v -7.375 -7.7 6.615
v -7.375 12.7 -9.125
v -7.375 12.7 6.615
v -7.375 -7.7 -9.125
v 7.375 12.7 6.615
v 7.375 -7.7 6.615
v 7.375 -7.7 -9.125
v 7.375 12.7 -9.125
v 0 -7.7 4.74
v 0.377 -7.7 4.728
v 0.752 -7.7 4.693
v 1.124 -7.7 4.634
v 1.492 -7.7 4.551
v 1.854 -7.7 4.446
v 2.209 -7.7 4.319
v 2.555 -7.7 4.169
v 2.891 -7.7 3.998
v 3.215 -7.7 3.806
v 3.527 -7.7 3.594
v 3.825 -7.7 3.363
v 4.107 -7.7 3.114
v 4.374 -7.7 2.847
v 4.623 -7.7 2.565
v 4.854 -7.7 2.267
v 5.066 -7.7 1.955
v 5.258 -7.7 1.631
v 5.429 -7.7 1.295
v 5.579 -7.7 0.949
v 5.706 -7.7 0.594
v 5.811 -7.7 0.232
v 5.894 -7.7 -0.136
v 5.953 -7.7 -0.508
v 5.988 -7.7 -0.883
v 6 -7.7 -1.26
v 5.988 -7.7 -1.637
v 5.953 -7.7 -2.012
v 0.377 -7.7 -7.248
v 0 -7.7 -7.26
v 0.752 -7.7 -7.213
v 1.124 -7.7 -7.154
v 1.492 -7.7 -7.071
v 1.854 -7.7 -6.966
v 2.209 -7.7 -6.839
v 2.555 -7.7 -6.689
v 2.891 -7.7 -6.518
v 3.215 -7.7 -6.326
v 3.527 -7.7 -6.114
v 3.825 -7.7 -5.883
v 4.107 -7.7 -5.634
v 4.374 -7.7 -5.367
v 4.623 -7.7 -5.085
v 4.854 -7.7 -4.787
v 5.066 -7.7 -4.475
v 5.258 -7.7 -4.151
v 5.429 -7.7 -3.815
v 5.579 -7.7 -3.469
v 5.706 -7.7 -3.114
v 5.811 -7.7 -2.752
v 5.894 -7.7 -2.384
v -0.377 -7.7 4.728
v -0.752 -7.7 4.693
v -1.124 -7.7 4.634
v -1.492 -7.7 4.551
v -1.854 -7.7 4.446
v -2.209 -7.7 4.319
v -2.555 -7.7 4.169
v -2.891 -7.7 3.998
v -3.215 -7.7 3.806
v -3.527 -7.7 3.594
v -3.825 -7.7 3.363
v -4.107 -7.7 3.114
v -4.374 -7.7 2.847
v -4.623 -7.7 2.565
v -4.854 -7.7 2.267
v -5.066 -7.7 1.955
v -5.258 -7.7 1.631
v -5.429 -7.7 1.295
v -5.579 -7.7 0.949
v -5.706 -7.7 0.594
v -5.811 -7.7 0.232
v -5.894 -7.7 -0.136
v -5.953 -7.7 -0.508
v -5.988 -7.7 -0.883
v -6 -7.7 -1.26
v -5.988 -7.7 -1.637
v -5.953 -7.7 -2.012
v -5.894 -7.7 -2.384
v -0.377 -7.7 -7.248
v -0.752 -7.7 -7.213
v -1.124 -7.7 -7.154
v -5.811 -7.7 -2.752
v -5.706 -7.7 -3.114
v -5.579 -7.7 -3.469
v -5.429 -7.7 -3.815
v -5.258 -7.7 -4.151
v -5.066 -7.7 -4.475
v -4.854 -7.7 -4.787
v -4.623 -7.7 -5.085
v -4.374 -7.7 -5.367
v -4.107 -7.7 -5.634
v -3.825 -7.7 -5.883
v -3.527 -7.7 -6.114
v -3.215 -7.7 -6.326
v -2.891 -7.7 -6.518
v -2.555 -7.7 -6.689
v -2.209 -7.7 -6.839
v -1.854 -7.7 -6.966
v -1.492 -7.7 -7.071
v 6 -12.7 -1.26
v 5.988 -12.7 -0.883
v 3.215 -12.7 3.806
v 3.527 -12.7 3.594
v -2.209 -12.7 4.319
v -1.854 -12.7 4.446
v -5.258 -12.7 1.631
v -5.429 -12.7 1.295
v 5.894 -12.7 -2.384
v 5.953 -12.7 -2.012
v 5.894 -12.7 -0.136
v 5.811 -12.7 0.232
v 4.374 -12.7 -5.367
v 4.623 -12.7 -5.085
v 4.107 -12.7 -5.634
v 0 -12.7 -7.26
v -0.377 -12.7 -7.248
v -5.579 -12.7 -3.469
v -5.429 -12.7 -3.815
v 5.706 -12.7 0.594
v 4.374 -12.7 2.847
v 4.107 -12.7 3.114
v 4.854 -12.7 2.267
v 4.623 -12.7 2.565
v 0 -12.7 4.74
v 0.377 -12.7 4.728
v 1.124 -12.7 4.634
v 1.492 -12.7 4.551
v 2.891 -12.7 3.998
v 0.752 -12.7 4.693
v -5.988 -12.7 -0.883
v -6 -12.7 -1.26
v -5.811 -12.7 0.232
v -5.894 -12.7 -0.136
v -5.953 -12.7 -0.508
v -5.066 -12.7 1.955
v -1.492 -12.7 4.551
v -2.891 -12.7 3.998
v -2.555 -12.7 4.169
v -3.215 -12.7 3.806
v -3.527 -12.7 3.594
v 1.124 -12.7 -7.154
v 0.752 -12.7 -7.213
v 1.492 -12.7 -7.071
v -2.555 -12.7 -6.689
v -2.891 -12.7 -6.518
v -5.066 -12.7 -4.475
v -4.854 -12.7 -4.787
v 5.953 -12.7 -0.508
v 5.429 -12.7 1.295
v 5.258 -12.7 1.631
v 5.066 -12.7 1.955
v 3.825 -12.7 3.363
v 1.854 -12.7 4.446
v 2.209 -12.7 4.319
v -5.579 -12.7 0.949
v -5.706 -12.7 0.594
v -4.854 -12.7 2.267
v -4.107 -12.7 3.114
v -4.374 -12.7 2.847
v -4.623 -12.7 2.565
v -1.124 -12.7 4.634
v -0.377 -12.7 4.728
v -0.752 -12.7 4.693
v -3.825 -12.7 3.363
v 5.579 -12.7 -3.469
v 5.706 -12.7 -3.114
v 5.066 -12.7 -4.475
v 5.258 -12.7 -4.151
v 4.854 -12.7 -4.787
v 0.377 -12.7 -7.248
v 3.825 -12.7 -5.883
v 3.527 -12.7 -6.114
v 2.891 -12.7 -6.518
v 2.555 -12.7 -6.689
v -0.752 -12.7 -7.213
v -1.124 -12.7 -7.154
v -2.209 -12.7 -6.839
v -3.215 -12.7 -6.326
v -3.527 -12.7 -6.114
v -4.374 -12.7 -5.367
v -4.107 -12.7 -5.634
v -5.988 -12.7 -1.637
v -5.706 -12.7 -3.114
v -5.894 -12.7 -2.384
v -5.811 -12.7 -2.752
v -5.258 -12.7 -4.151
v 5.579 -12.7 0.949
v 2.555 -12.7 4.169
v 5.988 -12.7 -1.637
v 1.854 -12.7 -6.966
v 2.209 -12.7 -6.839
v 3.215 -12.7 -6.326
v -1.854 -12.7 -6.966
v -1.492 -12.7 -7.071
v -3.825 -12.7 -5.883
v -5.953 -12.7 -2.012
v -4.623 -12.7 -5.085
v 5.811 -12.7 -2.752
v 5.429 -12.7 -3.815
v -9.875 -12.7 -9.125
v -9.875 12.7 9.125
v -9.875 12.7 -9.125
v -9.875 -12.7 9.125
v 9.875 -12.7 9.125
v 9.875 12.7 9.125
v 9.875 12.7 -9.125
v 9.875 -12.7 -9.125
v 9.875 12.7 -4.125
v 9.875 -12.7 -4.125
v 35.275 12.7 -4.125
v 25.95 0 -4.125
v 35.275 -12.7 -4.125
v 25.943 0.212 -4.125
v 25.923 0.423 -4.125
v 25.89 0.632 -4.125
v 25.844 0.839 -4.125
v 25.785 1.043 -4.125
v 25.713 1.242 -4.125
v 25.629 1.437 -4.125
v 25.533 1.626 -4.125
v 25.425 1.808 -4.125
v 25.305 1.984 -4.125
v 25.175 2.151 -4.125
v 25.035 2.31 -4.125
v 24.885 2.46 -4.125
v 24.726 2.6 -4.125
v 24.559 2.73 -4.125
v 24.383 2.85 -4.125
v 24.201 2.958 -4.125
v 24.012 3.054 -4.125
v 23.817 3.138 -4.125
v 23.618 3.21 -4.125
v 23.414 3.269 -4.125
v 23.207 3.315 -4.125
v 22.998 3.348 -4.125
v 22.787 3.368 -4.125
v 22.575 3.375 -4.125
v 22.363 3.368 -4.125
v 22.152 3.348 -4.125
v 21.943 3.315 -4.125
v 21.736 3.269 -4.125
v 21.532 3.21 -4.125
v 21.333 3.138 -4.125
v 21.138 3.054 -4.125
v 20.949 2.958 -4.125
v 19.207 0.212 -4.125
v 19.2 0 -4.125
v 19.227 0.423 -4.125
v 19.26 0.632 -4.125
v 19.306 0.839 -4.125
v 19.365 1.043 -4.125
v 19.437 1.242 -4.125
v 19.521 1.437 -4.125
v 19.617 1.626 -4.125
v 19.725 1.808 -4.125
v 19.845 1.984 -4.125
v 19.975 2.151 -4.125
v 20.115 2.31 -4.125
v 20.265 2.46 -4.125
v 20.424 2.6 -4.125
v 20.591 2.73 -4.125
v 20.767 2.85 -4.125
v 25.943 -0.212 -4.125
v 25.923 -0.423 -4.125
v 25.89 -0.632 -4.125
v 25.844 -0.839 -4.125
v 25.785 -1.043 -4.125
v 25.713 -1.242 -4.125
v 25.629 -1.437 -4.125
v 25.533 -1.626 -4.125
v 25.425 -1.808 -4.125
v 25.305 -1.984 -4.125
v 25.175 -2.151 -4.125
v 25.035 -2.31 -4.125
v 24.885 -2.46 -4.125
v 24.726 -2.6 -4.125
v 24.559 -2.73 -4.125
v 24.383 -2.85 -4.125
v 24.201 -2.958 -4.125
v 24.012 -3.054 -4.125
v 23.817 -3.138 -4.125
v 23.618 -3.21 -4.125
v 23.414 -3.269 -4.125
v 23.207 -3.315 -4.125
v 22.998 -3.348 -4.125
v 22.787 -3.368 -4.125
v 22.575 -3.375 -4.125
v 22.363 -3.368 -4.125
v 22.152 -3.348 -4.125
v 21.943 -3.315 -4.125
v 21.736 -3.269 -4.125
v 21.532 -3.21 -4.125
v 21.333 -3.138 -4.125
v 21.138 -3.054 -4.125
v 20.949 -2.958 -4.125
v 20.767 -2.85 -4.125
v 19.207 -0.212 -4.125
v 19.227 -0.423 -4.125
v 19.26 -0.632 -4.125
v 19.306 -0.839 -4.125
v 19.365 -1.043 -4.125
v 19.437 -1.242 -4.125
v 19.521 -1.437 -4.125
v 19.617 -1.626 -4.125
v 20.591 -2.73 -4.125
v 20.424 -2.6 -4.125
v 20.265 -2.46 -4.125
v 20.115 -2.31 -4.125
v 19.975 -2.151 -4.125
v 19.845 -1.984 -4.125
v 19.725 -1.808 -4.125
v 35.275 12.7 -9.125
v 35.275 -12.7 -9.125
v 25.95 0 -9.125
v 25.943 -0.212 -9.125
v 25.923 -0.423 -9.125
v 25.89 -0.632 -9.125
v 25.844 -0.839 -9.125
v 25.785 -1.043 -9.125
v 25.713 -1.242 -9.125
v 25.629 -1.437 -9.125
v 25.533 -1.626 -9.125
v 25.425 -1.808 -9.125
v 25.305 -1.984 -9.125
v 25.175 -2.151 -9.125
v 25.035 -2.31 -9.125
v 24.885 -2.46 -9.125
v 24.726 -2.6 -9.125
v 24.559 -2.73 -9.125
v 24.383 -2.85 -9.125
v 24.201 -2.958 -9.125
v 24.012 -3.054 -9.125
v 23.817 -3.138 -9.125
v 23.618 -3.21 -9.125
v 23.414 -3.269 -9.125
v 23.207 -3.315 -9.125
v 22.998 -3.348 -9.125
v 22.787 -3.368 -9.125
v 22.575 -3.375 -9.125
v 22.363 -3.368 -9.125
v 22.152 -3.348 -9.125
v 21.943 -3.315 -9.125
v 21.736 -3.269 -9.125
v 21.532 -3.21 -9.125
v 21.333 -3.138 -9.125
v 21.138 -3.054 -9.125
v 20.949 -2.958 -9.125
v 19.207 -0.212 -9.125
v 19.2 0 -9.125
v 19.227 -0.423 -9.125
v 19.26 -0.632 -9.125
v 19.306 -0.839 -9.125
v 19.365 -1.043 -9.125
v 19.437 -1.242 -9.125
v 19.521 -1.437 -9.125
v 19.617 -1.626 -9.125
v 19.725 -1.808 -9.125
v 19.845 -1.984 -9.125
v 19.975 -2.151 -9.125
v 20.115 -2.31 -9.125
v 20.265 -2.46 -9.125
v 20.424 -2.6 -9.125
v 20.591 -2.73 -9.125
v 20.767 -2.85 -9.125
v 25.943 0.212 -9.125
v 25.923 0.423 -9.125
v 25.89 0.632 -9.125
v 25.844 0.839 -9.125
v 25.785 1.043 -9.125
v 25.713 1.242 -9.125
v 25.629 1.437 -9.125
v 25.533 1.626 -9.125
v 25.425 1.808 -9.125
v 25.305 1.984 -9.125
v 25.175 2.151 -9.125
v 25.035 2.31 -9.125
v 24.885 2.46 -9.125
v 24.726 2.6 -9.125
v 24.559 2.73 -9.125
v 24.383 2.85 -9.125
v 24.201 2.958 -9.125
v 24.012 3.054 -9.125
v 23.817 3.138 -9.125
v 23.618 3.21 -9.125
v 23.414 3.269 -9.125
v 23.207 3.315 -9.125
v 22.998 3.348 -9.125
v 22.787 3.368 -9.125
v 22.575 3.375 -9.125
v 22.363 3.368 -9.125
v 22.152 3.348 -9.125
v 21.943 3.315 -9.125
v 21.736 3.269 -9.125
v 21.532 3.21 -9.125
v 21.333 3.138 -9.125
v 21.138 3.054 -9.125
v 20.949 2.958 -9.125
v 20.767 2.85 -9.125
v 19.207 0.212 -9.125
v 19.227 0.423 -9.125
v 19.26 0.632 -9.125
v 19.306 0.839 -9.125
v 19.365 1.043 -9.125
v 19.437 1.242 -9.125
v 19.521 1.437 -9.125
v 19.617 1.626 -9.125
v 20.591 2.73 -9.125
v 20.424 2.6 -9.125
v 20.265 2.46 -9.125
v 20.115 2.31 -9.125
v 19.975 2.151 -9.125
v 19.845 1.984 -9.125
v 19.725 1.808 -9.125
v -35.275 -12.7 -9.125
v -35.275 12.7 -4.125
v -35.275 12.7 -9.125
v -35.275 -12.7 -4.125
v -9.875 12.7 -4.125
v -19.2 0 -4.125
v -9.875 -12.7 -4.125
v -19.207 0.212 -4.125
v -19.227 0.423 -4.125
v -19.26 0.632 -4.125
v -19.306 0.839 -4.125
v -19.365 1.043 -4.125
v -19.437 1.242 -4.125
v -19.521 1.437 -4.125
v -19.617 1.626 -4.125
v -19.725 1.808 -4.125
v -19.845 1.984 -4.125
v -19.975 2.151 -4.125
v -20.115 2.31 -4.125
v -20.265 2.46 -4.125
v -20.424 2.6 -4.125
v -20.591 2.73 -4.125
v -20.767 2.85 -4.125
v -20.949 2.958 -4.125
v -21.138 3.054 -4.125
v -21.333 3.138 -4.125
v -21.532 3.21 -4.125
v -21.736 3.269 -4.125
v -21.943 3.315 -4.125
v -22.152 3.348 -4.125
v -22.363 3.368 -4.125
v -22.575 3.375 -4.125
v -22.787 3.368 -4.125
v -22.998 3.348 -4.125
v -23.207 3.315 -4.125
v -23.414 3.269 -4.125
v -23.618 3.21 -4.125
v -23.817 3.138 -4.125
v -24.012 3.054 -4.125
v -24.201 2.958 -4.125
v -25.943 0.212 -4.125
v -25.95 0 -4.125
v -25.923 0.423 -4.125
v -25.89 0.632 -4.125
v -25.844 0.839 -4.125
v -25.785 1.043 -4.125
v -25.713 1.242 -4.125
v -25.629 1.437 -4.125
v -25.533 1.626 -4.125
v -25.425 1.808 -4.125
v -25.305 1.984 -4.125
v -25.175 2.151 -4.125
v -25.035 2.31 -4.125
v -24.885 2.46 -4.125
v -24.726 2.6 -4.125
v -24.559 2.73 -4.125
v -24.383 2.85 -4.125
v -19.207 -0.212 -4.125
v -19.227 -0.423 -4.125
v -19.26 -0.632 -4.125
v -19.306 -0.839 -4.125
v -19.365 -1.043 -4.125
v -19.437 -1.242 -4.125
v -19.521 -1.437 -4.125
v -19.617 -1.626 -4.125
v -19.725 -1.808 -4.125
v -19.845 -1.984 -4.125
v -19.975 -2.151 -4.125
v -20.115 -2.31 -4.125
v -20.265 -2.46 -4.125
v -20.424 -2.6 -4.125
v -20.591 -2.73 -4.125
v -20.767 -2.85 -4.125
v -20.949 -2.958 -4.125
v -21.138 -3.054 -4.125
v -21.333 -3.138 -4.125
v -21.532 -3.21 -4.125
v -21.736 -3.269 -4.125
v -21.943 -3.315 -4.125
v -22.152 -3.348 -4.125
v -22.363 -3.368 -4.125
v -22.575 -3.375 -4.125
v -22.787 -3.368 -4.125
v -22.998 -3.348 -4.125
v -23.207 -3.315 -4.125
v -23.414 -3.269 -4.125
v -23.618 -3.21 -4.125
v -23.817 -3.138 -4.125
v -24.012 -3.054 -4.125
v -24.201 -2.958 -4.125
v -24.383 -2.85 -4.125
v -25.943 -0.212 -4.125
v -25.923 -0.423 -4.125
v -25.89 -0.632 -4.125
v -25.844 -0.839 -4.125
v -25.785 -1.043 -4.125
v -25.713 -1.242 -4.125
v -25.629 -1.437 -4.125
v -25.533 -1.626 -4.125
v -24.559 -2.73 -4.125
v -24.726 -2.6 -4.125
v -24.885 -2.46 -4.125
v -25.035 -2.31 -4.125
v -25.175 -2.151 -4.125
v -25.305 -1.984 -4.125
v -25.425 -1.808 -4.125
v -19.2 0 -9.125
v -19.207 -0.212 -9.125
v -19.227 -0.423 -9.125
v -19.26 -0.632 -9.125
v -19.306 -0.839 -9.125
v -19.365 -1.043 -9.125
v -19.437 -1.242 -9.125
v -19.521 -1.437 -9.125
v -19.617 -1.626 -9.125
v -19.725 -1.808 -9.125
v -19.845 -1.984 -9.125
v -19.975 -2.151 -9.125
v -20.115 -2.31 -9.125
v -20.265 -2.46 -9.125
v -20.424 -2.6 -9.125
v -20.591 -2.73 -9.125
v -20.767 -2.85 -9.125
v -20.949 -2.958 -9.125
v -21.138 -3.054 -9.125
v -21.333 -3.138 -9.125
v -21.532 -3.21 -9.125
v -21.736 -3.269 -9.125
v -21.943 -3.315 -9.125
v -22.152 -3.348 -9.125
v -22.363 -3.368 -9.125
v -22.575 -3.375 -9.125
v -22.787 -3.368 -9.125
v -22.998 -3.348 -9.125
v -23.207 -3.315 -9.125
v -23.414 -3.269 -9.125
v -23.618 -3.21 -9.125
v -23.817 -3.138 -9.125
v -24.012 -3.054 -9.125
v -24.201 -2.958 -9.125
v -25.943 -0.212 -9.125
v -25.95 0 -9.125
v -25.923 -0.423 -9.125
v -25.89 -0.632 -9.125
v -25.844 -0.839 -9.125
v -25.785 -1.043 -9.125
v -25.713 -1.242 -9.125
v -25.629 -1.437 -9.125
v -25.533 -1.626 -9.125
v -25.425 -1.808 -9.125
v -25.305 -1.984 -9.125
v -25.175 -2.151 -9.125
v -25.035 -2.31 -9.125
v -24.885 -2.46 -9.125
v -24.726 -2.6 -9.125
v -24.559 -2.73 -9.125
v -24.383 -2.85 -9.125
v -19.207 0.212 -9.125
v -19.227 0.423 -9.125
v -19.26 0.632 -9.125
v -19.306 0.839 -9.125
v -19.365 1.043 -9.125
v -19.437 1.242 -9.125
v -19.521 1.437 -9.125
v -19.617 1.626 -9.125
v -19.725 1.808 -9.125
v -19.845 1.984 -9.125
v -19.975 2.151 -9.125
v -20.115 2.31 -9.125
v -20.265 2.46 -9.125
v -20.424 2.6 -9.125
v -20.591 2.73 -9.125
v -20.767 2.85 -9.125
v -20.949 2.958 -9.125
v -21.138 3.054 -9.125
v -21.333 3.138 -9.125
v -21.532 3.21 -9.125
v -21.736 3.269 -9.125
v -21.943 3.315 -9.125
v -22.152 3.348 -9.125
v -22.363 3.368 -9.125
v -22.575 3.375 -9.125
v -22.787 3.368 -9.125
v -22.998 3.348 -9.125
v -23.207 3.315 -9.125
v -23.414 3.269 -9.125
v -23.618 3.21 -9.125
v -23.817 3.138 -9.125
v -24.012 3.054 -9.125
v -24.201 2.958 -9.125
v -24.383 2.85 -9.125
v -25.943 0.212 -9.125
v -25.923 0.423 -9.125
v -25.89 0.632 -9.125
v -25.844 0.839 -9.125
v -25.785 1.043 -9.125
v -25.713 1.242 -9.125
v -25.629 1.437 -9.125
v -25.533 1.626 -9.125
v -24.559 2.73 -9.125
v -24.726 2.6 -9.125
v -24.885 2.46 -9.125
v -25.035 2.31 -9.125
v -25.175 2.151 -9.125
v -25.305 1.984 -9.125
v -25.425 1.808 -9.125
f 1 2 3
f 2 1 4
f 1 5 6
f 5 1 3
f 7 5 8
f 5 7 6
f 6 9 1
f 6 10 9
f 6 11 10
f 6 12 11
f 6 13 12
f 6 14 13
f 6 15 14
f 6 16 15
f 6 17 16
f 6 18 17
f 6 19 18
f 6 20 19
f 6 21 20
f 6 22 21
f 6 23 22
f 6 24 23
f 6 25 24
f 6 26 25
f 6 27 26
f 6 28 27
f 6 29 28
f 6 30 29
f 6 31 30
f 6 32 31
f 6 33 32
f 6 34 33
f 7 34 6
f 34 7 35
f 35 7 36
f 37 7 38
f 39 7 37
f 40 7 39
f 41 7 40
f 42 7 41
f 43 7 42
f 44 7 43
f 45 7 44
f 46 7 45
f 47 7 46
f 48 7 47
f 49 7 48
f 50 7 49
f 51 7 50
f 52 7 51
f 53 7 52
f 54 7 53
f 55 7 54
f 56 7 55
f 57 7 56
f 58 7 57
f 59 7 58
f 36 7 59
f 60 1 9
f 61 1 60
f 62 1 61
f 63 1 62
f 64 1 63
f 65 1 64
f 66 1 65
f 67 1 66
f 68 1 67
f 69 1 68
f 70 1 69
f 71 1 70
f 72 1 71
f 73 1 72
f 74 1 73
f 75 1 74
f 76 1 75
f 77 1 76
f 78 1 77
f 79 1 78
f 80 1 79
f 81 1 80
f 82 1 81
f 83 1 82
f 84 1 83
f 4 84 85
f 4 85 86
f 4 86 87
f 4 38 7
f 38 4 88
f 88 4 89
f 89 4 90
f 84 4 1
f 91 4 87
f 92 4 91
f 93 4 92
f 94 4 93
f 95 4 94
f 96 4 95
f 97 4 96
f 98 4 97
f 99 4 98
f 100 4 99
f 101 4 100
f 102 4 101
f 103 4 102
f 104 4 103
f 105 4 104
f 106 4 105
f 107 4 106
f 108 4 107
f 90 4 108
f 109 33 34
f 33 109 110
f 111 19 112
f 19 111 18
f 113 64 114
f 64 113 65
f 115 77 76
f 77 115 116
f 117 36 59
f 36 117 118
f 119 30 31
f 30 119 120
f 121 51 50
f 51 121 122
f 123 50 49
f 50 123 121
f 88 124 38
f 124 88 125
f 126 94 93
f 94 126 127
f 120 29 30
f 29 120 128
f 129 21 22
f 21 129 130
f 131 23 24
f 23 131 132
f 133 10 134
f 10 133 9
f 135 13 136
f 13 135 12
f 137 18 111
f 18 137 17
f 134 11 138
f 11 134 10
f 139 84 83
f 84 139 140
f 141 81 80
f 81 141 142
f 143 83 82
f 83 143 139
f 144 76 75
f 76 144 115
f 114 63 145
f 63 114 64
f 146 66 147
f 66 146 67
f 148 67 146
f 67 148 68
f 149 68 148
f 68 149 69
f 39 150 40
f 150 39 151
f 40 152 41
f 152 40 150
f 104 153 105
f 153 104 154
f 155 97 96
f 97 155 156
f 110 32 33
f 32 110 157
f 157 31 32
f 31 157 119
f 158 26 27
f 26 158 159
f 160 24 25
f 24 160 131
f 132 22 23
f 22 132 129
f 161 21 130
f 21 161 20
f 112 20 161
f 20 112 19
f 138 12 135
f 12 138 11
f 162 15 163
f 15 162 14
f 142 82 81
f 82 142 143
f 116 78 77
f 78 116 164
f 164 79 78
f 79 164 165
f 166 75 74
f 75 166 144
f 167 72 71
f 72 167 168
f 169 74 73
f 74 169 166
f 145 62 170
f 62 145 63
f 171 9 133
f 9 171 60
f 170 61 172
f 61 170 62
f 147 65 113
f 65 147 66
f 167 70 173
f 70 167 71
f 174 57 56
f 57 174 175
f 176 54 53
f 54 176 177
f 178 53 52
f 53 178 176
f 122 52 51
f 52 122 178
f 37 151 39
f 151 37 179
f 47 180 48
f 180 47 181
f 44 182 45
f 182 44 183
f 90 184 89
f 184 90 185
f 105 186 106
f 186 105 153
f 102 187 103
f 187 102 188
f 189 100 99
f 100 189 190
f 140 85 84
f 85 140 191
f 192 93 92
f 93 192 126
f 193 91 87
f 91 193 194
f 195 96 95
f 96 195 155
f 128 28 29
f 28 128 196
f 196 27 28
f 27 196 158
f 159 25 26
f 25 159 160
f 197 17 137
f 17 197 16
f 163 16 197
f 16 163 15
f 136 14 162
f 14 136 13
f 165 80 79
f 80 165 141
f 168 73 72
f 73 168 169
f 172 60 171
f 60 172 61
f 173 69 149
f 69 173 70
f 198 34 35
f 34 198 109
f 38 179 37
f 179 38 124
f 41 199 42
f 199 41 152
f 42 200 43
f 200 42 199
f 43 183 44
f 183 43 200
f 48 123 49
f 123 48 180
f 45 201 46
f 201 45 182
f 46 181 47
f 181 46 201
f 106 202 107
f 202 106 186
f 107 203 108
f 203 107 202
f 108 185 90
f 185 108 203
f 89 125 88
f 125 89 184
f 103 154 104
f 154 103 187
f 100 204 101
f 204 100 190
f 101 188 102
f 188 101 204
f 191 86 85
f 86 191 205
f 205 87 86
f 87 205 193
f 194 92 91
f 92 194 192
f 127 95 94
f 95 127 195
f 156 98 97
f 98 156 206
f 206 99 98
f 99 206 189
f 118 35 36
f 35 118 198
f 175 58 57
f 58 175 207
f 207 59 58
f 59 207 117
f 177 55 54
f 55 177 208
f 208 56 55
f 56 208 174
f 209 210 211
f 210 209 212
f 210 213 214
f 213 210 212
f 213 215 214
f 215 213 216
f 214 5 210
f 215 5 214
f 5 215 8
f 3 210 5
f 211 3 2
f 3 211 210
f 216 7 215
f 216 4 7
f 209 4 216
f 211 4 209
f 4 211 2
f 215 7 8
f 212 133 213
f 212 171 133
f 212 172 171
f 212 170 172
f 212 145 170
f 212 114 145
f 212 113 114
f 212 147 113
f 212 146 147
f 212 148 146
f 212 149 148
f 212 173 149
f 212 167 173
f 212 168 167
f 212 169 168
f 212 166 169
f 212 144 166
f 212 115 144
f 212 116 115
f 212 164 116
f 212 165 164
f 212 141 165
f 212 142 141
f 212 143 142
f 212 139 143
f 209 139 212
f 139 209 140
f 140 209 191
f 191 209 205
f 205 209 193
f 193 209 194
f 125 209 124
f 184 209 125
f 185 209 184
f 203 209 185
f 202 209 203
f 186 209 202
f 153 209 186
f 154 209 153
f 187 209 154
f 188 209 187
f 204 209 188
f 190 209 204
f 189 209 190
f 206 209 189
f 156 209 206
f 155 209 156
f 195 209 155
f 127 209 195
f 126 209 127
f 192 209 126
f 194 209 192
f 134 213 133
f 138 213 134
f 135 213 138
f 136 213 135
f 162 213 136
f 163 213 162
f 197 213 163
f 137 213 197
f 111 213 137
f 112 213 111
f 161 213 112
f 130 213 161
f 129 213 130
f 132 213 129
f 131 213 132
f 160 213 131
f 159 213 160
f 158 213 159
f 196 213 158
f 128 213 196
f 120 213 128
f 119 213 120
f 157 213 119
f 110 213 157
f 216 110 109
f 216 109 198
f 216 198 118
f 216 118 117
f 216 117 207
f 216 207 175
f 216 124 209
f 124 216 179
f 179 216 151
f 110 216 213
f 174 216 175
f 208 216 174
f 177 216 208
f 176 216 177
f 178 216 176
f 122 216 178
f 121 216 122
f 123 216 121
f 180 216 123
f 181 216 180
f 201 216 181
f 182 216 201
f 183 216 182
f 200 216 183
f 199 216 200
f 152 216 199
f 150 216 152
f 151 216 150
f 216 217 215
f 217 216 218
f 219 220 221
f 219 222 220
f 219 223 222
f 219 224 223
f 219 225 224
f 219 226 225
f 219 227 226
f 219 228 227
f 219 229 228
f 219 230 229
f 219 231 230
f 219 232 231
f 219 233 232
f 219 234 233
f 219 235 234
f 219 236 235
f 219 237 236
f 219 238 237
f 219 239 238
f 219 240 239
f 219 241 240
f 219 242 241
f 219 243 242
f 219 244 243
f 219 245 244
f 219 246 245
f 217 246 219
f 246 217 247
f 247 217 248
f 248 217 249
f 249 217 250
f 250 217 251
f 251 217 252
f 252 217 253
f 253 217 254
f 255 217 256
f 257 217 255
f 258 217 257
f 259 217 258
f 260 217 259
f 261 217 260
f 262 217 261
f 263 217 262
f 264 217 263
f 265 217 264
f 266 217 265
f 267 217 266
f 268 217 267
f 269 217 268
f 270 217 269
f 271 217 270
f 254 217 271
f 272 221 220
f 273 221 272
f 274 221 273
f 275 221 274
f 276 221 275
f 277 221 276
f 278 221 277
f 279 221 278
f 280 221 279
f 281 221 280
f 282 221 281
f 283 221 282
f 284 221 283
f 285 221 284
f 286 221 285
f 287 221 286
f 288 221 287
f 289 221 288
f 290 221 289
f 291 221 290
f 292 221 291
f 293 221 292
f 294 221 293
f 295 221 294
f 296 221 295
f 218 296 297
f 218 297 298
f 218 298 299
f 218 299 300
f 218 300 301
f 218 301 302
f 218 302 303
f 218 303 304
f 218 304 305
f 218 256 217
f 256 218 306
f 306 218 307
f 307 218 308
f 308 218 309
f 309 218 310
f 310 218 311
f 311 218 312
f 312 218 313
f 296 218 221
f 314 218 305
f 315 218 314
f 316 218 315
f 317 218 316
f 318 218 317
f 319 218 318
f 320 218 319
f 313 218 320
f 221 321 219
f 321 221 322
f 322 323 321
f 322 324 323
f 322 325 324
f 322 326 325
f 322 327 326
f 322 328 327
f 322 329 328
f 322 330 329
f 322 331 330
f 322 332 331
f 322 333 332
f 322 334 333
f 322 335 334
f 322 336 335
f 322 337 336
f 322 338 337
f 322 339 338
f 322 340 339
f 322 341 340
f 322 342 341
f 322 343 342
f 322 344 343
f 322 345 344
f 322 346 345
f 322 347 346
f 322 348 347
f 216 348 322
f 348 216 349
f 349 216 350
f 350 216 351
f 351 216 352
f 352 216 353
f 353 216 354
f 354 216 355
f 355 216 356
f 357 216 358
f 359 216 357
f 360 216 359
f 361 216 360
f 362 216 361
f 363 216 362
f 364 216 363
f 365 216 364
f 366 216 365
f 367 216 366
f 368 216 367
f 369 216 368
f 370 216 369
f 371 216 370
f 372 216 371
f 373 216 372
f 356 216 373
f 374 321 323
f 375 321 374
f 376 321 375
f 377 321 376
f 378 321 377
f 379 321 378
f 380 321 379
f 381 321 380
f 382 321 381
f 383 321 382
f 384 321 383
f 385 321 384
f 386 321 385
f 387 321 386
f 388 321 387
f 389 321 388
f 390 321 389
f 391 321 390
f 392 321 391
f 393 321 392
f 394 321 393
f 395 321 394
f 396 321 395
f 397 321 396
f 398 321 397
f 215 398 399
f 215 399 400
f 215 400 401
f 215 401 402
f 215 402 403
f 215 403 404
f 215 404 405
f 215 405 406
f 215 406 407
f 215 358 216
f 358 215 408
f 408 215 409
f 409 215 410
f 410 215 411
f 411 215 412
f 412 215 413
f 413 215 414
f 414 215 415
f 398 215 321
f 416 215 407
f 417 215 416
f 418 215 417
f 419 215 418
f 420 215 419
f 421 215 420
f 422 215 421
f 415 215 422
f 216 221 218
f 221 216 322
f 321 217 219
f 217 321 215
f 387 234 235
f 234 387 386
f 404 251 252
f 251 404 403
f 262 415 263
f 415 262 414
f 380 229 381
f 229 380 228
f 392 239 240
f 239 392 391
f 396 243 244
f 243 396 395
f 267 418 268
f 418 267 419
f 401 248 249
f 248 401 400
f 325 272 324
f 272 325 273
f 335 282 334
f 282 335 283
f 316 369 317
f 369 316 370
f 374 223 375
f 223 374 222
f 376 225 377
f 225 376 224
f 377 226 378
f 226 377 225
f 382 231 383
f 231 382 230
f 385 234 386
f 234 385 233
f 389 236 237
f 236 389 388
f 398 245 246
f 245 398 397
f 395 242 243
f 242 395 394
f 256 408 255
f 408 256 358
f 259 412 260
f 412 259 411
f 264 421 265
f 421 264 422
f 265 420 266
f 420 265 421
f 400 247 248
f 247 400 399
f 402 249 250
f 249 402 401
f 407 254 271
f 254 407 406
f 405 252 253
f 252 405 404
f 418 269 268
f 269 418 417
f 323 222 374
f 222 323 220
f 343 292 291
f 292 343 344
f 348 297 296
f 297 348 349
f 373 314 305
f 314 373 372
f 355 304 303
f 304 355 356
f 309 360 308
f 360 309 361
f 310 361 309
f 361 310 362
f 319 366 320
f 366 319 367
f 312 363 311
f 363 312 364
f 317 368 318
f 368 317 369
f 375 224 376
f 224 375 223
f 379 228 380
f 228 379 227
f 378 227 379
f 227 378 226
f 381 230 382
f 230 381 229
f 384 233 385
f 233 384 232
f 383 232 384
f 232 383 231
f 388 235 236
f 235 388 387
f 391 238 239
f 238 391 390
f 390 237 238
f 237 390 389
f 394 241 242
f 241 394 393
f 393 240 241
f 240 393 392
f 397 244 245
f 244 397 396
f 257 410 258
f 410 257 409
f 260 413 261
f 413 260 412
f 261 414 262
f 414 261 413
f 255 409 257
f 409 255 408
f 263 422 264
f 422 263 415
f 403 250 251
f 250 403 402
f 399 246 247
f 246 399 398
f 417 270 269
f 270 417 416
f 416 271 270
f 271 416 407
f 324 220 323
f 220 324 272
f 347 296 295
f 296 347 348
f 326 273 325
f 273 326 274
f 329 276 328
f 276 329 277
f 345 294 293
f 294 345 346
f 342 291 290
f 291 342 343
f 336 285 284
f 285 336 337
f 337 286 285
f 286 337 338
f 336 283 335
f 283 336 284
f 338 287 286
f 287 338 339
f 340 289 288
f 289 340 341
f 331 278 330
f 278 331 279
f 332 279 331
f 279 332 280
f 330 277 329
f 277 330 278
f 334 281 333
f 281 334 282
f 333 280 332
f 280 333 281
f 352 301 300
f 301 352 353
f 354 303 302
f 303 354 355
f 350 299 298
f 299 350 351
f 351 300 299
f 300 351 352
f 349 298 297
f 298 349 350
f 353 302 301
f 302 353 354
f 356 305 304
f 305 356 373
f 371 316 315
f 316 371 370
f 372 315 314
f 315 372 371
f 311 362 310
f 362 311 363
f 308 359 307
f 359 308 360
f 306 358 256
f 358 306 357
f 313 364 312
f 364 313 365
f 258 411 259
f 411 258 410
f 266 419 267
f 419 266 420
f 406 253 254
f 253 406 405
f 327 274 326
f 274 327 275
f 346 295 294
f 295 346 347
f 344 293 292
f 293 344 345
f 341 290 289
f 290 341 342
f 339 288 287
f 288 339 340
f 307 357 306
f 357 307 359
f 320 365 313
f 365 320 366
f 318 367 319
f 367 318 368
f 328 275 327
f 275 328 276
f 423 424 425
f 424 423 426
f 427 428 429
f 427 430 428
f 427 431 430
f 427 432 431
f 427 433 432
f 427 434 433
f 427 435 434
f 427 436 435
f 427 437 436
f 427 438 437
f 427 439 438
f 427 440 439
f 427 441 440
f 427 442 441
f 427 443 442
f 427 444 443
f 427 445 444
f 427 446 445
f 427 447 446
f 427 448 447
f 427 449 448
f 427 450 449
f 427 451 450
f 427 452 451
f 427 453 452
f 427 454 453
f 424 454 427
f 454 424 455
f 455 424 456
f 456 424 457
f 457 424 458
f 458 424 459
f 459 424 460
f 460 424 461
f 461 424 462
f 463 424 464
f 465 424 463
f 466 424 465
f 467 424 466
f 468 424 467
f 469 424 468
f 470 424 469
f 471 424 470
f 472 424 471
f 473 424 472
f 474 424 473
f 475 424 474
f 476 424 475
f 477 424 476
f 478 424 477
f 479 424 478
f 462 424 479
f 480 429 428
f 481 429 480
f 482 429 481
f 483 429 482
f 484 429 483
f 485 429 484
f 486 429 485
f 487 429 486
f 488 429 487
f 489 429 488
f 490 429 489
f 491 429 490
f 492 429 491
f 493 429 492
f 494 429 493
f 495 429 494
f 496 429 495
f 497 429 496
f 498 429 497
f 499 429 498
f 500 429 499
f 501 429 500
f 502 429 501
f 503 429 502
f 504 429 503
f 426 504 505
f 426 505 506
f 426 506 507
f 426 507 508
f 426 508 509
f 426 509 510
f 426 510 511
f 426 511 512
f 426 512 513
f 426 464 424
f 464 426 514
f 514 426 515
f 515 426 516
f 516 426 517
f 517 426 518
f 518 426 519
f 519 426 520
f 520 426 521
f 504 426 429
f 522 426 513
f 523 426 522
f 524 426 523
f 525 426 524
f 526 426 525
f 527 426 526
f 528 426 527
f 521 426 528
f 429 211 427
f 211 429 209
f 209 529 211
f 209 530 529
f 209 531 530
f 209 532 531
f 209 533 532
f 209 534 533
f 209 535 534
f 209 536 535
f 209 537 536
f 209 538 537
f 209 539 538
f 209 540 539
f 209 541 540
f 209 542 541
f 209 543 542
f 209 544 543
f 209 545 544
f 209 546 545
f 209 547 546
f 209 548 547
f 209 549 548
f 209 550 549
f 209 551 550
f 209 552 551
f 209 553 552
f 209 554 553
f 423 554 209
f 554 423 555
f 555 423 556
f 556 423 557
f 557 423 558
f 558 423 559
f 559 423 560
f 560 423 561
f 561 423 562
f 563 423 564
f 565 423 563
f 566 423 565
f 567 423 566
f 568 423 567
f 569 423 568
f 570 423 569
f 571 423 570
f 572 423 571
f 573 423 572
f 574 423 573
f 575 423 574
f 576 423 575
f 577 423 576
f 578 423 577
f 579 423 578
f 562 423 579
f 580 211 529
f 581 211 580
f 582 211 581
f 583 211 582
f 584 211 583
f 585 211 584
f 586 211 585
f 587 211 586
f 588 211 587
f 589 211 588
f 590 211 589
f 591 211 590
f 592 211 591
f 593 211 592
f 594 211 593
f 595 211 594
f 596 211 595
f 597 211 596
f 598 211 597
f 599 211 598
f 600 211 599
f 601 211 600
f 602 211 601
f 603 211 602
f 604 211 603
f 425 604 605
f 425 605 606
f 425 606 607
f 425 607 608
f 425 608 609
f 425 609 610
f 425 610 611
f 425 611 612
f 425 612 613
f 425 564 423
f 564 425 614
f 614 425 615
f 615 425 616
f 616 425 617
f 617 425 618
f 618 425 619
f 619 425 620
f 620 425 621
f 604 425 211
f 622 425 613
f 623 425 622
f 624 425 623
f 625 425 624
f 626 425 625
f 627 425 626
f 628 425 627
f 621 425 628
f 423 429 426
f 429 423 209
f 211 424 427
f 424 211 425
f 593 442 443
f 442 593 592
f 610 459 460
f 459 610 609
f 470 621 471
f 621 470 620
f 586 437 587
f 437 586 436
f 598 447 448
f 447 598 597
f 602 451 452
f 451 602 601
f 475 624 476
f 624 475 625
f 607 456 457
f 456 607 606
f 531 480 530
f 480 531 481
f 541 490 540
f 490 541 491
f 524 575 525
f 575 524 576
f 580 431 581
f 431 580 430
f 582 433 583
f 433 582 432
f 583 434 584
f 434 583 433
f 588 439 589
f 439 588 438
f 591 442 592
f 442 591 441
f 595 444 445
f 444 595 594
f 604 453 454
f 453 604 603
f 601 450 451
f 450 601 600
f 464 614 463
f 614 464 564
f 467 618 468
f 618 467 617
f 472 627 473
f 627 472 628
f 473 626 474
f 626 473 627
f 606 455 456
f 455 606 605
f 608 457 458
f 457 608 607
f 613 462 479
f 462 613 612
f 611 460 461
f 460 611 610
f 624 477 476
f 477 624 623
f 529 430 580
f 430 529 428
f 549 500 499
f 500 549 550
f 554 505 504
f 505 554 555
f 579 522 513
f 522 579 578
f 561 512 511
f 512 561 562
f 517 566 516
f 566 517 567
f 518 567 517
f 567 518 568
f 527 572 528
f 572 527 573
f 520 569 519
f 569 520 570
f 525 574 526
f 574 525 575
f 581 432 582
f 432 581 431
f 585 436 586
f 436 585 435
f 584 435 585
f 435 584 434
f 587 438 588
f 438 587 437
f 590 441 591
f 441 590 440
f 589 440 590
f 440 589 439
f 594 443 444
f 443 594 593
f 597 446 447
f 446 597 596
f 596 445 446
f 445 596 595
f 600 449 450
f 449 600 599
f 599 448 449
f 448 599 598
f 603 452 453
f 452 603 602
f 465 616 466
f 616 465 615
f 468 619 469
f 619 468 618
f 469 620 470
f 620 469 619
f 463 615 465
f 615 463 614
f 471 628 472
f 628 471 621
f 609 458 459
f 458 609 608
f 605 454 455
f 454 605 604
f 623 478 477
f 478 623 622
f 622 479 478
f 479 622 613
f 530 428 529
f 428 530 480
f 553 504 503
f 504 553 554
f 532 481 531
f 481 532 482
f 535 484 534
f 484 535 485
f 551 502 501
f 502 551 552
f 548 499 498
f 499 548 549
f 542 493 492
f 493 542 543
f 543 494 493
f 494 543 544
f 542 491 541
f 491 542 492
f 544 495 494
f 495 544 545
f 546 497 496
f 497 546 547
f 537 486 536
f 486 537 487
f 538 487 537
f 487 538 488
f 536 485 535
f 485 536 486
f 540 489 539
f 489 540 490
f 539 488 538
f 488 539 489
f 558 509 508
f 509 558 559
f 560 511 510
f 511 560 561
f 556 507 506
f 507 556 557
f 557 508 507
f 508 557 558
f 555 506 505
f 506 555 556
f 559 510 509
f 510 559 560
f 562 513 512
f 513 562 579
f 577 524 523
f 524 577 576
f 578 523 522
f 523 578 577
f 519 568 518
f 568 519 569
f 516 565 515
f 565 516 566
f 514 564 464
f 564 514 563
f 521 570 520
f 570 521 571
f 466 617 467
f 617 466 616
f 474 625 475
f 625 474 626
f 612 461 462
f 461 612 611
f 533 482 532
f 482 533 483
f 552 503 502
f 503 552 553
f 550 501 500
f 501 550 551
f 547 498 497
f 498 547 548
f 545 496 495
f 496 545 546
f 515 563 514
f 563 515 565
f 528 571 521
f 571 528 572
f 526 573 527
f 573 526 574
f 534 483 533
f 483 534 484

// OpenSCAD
$fn=100;

z=5;
in=25.4;
bolt=in/4+.4;
bnc_w=14.75;
bnc_h=15.75;
bnc_port=12;

module slat(){
    difference(){
        cube([in,in,z],center=true);
        translate([0,0,-z])
        cylinder(100,d=bolt);
    }
}



module bnc() {
    difference(){
    cube([bnc_w+z,in,bnc_h+z/2],center=true);
    translate([0,z,-z/4-.01]){
    cube([bnc_w,in,bnc_h],center=true);
        rotate([90,0,0])
    cylinder(100,d=bnc_port);
    }
        
    }
}
for(i=[0:1]){
translate([(-1)^i*((bnc_w+z)/2+in/2),0,-(bnc_h-z/2)/2])
slat();
}
bnc();
